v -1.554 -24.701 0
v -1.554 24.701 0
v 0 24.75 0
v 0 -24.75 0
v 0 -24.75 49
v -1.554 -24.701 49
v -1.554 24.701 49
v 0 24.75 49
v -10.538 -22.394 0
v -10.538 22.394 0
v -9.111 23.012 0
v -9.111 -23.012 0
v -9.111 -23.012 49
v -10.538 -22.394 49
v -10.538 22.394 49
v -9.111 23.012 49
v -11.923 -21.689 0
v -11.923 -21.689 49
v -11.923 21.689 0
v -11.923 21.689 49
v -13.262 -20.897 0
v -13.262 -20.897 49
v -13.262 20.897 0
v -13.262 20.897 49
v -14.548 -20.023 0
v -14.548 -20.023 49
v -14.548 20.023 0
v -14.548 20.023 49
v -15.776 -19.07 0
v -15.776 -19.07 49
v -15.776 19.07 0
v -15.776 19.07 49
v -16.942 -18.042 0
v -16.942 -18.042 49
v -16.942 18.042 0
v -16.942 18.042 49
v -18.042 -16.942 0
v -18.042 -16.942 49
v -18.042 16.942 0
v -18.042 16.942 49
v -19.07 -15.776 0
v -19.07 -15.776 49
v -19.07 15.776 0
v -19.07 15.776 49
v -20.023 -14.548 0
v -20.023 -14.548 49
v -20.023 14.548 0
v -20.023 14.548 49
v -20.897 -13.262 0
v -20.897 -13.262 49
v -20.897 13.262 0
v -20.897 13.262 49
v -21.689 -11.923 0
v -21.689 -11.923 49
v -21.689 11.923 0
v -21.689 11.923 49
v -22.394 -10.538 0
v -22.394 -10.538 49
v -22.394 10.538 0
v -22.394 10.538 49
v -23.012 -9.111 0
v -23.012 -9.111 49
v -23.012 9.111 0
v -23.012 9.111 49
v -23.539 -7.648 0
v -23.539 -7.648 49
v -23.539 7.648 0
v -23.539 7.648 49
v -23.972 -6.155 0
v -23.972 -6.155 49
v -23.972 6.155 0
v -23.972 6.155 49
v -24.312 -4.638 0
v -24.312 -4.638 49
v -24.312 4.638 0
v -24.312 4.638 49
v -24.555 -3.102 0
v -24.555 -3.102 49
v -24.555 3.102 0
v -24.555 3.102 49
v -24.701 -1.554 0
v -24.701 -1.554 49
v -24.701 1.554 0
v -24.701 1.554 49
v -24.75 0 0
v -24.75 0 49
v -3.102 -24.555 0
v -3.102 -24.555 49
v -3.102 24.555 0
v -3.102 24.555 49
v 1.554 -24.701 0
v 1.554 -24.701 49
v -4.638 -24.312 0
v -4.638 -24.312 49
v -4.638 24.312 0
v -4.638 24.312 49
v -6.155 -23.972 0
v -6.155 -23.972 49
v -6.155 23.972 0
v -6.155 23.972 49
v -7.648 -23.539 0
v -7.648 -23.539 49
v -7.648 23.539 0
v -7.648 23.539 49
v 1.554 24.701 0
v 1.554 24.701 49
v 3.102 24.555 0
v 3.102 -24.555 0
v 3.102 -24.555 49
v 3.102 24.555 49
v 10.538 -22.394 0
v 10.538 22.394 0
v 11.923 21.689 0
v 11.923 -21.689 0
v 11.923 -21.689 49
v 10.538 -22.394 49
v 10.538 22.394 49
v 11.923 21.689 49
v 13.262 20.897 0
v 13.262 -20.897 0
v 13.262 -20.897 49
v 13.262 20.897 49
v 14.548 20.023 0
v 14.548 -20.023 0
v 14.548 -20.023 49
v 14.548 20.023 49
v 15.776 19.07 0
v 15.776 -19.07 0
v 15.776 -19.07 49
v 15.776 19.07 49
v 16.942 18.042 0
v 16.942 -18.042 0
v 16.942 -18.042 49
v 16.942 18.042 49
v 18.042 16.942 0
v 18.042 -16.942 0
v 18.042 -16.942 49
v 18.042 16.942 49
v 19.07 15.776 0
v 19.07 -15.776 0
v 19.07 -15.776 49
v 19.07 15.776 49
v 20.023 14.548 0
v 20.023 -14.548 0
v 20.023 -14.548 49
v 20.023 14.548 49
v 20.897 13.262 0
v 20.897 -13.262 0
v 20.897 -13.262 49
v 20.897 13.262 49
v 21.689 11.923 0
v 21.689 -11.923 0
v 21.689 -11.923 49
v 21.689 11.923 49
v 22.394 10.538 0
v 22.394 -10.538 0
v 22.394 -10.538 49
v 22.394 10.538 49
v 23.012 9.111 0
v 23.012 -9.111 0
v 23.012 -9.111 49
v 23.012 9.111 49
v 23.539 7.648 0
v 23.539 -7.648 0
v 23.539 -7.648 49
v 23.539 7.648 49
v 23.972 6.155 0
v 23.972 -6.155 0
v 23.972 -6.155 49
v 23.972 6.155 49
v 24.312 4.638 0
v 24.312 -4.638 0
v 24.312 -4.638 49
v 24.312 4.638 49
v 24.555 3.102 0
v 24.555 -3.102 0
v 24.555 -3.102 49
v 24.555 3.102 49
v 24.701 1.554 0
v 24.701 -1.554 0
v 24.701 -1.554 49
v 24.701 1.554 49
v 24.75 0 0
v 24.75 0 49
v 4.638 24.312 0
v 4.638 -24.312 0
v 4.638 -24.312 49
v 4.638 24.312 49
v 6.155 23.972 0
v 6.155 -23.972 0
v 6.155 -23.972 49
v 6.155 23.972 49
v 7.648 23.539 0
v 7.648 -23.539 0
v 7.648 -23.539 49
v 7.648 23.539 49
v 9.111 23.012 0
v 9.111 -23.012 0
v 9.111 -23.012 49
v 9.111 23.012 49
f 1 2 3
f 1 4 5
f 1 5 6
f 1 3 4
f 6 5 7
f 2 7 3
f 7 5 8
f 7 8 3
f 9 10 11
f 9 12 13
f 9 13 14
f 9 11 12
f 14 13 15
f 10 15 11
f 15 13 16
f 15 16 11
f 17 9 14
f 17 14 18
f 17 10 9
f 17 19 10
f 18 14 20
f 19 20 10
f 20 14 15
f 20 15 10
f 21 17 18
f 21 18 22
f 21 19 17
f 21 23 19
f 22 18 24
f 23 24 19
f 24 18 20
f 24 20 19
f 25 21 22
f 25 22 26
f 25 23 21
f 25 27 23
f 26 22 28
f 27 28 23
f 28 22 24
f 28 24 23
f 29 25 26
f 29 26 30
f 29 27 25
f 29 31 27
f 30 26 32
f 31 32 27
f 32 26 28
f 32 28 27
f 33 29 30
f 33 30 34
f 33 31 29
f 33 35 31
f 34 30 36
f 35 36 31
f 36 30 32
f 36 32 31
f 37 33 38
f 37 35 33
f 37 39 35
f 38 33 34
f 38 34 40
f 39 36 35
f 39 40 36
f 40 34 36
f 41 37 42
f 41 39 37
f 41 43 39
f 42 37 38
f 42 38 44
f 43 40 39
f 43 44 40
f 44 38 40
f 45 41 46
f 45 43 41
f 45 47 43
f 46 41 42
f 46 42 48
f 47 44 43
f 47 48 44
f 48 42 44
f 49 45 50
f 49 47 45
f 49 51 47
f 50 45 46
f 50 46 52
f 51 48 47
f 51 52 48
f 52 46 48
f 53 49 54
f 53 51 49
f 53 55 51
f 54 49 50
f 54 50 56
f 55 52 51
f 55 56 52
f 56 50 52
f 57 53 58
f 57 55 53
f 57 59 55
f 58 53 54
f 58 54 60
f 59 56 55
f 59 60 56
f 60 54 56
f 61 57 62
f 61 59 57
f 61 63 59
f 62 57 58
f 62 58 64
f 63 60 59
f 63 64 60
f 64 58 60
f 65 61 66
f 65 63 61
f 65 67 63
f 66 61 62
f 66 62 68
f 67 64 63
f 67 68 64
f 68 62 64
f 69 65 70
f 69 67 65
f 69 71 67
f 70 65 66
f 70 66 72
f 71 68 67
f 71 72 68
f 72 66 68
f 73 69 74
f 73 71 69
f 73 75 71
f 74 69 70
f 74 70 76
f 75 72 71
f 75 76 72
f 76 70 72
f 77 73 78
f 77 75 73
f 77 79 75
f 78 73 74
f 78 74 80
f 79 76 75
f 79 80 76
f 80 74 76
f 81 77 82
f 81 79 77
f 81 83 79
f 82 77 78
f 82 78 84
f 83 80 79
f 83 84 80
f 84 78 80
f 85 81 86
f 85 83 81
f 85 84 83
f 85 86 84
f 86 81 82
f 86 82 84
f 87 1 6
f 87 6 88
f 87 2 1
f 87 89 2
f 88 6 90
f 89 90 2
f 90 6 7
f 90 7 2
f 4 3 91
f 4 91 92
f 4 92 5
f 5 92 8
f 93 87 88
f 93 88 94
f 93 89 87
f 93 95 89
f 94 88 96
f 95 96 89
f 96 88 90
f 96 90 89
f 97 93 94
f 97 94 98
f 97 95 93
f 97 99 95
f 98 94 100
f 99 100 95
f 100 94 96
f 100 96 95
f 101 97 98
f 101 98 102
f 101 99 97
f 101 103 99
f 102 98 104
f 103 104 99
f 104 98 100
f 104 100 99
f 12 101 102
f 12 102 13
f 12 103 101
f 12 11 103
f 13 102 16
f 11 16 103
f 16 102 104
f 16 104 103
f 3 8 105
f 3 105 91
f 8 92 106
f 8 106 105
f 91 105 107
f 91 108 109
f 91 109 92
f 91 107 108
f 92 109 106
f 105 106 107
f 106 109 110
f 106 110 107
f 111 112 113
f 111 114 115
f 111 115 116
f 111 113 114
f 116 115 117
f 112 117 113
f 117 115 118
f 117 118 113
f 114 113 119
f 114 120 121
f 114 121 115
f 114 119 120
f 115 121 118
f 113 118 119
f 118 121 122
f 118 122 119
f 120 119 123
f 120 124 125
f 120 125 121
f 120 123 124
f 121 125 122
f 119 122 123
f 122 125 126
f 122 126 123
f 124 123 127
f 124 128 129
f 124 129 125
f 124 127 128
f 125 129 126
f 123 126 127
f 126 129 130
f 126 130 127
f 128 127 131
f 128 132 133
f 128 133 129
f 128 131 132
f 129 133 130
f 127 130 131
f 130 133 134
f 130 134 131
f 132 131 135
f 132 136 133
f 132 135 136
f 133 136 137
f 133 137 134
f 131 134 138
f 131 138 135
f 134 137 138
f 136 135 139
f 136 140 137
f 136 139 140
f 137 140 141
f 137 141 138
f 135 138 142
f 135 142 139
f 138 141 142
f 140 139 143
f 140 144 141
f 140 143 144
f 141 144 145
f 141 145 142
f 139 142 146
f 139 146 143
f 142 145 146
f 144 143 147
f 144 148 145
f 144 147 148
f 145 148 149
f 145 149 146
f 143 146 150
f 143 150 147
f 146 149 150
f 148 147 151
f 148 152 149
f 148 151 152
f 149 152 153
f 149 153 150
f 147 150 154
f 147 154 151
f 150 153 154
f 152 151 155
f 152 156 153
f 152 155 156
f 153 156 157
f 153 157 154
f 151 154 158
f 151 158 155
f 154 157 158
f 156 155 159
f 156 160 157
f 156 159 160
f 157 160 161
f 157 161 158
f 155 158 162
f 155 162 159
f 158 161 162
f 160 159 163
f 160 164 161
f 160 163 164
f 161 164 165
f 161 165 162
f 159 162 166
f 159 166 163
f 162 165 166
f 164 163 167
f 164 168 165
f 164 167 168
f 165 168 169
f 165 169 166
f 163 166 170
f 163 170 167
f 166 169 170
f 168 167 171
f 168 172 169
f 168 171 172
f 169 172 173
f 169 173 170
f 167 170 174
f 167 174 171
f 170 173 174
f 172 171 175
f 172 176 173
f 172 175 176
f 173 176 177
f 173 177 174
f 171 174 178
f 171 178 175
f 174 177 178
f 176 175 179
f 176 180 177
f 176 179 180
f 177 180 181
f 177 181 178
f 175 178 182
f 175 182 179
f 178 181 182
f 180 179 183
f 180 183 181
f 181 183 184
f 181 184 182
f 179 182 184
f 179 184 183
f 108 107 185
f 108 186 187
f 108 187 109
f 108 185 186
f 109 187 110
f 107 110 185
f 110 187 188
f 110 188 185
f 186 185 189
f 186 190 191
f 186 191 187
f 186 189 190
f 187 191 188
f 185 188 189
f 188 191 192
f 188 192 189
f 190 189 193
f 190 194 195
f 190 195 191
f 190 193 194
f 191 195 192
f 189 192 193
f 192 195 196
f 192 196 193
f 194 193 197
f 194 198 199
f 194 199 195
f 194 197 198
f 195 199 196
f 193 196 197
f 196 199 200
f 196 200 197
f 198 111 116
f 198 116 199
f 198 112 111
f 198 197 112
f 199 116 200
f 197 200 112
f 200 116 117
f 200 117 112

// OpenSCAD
			       //improving rendering speed.
draft = true;   // sets rendering quality to draft.
$fs = draft ? 5 : 0.5;
$fa = 10;


module motor_imitation(draft){

cylinder(h= 49, r = 49.5/2, $fn = 100);

}




motor_imitation(draft);

include <../parameters.scad>
